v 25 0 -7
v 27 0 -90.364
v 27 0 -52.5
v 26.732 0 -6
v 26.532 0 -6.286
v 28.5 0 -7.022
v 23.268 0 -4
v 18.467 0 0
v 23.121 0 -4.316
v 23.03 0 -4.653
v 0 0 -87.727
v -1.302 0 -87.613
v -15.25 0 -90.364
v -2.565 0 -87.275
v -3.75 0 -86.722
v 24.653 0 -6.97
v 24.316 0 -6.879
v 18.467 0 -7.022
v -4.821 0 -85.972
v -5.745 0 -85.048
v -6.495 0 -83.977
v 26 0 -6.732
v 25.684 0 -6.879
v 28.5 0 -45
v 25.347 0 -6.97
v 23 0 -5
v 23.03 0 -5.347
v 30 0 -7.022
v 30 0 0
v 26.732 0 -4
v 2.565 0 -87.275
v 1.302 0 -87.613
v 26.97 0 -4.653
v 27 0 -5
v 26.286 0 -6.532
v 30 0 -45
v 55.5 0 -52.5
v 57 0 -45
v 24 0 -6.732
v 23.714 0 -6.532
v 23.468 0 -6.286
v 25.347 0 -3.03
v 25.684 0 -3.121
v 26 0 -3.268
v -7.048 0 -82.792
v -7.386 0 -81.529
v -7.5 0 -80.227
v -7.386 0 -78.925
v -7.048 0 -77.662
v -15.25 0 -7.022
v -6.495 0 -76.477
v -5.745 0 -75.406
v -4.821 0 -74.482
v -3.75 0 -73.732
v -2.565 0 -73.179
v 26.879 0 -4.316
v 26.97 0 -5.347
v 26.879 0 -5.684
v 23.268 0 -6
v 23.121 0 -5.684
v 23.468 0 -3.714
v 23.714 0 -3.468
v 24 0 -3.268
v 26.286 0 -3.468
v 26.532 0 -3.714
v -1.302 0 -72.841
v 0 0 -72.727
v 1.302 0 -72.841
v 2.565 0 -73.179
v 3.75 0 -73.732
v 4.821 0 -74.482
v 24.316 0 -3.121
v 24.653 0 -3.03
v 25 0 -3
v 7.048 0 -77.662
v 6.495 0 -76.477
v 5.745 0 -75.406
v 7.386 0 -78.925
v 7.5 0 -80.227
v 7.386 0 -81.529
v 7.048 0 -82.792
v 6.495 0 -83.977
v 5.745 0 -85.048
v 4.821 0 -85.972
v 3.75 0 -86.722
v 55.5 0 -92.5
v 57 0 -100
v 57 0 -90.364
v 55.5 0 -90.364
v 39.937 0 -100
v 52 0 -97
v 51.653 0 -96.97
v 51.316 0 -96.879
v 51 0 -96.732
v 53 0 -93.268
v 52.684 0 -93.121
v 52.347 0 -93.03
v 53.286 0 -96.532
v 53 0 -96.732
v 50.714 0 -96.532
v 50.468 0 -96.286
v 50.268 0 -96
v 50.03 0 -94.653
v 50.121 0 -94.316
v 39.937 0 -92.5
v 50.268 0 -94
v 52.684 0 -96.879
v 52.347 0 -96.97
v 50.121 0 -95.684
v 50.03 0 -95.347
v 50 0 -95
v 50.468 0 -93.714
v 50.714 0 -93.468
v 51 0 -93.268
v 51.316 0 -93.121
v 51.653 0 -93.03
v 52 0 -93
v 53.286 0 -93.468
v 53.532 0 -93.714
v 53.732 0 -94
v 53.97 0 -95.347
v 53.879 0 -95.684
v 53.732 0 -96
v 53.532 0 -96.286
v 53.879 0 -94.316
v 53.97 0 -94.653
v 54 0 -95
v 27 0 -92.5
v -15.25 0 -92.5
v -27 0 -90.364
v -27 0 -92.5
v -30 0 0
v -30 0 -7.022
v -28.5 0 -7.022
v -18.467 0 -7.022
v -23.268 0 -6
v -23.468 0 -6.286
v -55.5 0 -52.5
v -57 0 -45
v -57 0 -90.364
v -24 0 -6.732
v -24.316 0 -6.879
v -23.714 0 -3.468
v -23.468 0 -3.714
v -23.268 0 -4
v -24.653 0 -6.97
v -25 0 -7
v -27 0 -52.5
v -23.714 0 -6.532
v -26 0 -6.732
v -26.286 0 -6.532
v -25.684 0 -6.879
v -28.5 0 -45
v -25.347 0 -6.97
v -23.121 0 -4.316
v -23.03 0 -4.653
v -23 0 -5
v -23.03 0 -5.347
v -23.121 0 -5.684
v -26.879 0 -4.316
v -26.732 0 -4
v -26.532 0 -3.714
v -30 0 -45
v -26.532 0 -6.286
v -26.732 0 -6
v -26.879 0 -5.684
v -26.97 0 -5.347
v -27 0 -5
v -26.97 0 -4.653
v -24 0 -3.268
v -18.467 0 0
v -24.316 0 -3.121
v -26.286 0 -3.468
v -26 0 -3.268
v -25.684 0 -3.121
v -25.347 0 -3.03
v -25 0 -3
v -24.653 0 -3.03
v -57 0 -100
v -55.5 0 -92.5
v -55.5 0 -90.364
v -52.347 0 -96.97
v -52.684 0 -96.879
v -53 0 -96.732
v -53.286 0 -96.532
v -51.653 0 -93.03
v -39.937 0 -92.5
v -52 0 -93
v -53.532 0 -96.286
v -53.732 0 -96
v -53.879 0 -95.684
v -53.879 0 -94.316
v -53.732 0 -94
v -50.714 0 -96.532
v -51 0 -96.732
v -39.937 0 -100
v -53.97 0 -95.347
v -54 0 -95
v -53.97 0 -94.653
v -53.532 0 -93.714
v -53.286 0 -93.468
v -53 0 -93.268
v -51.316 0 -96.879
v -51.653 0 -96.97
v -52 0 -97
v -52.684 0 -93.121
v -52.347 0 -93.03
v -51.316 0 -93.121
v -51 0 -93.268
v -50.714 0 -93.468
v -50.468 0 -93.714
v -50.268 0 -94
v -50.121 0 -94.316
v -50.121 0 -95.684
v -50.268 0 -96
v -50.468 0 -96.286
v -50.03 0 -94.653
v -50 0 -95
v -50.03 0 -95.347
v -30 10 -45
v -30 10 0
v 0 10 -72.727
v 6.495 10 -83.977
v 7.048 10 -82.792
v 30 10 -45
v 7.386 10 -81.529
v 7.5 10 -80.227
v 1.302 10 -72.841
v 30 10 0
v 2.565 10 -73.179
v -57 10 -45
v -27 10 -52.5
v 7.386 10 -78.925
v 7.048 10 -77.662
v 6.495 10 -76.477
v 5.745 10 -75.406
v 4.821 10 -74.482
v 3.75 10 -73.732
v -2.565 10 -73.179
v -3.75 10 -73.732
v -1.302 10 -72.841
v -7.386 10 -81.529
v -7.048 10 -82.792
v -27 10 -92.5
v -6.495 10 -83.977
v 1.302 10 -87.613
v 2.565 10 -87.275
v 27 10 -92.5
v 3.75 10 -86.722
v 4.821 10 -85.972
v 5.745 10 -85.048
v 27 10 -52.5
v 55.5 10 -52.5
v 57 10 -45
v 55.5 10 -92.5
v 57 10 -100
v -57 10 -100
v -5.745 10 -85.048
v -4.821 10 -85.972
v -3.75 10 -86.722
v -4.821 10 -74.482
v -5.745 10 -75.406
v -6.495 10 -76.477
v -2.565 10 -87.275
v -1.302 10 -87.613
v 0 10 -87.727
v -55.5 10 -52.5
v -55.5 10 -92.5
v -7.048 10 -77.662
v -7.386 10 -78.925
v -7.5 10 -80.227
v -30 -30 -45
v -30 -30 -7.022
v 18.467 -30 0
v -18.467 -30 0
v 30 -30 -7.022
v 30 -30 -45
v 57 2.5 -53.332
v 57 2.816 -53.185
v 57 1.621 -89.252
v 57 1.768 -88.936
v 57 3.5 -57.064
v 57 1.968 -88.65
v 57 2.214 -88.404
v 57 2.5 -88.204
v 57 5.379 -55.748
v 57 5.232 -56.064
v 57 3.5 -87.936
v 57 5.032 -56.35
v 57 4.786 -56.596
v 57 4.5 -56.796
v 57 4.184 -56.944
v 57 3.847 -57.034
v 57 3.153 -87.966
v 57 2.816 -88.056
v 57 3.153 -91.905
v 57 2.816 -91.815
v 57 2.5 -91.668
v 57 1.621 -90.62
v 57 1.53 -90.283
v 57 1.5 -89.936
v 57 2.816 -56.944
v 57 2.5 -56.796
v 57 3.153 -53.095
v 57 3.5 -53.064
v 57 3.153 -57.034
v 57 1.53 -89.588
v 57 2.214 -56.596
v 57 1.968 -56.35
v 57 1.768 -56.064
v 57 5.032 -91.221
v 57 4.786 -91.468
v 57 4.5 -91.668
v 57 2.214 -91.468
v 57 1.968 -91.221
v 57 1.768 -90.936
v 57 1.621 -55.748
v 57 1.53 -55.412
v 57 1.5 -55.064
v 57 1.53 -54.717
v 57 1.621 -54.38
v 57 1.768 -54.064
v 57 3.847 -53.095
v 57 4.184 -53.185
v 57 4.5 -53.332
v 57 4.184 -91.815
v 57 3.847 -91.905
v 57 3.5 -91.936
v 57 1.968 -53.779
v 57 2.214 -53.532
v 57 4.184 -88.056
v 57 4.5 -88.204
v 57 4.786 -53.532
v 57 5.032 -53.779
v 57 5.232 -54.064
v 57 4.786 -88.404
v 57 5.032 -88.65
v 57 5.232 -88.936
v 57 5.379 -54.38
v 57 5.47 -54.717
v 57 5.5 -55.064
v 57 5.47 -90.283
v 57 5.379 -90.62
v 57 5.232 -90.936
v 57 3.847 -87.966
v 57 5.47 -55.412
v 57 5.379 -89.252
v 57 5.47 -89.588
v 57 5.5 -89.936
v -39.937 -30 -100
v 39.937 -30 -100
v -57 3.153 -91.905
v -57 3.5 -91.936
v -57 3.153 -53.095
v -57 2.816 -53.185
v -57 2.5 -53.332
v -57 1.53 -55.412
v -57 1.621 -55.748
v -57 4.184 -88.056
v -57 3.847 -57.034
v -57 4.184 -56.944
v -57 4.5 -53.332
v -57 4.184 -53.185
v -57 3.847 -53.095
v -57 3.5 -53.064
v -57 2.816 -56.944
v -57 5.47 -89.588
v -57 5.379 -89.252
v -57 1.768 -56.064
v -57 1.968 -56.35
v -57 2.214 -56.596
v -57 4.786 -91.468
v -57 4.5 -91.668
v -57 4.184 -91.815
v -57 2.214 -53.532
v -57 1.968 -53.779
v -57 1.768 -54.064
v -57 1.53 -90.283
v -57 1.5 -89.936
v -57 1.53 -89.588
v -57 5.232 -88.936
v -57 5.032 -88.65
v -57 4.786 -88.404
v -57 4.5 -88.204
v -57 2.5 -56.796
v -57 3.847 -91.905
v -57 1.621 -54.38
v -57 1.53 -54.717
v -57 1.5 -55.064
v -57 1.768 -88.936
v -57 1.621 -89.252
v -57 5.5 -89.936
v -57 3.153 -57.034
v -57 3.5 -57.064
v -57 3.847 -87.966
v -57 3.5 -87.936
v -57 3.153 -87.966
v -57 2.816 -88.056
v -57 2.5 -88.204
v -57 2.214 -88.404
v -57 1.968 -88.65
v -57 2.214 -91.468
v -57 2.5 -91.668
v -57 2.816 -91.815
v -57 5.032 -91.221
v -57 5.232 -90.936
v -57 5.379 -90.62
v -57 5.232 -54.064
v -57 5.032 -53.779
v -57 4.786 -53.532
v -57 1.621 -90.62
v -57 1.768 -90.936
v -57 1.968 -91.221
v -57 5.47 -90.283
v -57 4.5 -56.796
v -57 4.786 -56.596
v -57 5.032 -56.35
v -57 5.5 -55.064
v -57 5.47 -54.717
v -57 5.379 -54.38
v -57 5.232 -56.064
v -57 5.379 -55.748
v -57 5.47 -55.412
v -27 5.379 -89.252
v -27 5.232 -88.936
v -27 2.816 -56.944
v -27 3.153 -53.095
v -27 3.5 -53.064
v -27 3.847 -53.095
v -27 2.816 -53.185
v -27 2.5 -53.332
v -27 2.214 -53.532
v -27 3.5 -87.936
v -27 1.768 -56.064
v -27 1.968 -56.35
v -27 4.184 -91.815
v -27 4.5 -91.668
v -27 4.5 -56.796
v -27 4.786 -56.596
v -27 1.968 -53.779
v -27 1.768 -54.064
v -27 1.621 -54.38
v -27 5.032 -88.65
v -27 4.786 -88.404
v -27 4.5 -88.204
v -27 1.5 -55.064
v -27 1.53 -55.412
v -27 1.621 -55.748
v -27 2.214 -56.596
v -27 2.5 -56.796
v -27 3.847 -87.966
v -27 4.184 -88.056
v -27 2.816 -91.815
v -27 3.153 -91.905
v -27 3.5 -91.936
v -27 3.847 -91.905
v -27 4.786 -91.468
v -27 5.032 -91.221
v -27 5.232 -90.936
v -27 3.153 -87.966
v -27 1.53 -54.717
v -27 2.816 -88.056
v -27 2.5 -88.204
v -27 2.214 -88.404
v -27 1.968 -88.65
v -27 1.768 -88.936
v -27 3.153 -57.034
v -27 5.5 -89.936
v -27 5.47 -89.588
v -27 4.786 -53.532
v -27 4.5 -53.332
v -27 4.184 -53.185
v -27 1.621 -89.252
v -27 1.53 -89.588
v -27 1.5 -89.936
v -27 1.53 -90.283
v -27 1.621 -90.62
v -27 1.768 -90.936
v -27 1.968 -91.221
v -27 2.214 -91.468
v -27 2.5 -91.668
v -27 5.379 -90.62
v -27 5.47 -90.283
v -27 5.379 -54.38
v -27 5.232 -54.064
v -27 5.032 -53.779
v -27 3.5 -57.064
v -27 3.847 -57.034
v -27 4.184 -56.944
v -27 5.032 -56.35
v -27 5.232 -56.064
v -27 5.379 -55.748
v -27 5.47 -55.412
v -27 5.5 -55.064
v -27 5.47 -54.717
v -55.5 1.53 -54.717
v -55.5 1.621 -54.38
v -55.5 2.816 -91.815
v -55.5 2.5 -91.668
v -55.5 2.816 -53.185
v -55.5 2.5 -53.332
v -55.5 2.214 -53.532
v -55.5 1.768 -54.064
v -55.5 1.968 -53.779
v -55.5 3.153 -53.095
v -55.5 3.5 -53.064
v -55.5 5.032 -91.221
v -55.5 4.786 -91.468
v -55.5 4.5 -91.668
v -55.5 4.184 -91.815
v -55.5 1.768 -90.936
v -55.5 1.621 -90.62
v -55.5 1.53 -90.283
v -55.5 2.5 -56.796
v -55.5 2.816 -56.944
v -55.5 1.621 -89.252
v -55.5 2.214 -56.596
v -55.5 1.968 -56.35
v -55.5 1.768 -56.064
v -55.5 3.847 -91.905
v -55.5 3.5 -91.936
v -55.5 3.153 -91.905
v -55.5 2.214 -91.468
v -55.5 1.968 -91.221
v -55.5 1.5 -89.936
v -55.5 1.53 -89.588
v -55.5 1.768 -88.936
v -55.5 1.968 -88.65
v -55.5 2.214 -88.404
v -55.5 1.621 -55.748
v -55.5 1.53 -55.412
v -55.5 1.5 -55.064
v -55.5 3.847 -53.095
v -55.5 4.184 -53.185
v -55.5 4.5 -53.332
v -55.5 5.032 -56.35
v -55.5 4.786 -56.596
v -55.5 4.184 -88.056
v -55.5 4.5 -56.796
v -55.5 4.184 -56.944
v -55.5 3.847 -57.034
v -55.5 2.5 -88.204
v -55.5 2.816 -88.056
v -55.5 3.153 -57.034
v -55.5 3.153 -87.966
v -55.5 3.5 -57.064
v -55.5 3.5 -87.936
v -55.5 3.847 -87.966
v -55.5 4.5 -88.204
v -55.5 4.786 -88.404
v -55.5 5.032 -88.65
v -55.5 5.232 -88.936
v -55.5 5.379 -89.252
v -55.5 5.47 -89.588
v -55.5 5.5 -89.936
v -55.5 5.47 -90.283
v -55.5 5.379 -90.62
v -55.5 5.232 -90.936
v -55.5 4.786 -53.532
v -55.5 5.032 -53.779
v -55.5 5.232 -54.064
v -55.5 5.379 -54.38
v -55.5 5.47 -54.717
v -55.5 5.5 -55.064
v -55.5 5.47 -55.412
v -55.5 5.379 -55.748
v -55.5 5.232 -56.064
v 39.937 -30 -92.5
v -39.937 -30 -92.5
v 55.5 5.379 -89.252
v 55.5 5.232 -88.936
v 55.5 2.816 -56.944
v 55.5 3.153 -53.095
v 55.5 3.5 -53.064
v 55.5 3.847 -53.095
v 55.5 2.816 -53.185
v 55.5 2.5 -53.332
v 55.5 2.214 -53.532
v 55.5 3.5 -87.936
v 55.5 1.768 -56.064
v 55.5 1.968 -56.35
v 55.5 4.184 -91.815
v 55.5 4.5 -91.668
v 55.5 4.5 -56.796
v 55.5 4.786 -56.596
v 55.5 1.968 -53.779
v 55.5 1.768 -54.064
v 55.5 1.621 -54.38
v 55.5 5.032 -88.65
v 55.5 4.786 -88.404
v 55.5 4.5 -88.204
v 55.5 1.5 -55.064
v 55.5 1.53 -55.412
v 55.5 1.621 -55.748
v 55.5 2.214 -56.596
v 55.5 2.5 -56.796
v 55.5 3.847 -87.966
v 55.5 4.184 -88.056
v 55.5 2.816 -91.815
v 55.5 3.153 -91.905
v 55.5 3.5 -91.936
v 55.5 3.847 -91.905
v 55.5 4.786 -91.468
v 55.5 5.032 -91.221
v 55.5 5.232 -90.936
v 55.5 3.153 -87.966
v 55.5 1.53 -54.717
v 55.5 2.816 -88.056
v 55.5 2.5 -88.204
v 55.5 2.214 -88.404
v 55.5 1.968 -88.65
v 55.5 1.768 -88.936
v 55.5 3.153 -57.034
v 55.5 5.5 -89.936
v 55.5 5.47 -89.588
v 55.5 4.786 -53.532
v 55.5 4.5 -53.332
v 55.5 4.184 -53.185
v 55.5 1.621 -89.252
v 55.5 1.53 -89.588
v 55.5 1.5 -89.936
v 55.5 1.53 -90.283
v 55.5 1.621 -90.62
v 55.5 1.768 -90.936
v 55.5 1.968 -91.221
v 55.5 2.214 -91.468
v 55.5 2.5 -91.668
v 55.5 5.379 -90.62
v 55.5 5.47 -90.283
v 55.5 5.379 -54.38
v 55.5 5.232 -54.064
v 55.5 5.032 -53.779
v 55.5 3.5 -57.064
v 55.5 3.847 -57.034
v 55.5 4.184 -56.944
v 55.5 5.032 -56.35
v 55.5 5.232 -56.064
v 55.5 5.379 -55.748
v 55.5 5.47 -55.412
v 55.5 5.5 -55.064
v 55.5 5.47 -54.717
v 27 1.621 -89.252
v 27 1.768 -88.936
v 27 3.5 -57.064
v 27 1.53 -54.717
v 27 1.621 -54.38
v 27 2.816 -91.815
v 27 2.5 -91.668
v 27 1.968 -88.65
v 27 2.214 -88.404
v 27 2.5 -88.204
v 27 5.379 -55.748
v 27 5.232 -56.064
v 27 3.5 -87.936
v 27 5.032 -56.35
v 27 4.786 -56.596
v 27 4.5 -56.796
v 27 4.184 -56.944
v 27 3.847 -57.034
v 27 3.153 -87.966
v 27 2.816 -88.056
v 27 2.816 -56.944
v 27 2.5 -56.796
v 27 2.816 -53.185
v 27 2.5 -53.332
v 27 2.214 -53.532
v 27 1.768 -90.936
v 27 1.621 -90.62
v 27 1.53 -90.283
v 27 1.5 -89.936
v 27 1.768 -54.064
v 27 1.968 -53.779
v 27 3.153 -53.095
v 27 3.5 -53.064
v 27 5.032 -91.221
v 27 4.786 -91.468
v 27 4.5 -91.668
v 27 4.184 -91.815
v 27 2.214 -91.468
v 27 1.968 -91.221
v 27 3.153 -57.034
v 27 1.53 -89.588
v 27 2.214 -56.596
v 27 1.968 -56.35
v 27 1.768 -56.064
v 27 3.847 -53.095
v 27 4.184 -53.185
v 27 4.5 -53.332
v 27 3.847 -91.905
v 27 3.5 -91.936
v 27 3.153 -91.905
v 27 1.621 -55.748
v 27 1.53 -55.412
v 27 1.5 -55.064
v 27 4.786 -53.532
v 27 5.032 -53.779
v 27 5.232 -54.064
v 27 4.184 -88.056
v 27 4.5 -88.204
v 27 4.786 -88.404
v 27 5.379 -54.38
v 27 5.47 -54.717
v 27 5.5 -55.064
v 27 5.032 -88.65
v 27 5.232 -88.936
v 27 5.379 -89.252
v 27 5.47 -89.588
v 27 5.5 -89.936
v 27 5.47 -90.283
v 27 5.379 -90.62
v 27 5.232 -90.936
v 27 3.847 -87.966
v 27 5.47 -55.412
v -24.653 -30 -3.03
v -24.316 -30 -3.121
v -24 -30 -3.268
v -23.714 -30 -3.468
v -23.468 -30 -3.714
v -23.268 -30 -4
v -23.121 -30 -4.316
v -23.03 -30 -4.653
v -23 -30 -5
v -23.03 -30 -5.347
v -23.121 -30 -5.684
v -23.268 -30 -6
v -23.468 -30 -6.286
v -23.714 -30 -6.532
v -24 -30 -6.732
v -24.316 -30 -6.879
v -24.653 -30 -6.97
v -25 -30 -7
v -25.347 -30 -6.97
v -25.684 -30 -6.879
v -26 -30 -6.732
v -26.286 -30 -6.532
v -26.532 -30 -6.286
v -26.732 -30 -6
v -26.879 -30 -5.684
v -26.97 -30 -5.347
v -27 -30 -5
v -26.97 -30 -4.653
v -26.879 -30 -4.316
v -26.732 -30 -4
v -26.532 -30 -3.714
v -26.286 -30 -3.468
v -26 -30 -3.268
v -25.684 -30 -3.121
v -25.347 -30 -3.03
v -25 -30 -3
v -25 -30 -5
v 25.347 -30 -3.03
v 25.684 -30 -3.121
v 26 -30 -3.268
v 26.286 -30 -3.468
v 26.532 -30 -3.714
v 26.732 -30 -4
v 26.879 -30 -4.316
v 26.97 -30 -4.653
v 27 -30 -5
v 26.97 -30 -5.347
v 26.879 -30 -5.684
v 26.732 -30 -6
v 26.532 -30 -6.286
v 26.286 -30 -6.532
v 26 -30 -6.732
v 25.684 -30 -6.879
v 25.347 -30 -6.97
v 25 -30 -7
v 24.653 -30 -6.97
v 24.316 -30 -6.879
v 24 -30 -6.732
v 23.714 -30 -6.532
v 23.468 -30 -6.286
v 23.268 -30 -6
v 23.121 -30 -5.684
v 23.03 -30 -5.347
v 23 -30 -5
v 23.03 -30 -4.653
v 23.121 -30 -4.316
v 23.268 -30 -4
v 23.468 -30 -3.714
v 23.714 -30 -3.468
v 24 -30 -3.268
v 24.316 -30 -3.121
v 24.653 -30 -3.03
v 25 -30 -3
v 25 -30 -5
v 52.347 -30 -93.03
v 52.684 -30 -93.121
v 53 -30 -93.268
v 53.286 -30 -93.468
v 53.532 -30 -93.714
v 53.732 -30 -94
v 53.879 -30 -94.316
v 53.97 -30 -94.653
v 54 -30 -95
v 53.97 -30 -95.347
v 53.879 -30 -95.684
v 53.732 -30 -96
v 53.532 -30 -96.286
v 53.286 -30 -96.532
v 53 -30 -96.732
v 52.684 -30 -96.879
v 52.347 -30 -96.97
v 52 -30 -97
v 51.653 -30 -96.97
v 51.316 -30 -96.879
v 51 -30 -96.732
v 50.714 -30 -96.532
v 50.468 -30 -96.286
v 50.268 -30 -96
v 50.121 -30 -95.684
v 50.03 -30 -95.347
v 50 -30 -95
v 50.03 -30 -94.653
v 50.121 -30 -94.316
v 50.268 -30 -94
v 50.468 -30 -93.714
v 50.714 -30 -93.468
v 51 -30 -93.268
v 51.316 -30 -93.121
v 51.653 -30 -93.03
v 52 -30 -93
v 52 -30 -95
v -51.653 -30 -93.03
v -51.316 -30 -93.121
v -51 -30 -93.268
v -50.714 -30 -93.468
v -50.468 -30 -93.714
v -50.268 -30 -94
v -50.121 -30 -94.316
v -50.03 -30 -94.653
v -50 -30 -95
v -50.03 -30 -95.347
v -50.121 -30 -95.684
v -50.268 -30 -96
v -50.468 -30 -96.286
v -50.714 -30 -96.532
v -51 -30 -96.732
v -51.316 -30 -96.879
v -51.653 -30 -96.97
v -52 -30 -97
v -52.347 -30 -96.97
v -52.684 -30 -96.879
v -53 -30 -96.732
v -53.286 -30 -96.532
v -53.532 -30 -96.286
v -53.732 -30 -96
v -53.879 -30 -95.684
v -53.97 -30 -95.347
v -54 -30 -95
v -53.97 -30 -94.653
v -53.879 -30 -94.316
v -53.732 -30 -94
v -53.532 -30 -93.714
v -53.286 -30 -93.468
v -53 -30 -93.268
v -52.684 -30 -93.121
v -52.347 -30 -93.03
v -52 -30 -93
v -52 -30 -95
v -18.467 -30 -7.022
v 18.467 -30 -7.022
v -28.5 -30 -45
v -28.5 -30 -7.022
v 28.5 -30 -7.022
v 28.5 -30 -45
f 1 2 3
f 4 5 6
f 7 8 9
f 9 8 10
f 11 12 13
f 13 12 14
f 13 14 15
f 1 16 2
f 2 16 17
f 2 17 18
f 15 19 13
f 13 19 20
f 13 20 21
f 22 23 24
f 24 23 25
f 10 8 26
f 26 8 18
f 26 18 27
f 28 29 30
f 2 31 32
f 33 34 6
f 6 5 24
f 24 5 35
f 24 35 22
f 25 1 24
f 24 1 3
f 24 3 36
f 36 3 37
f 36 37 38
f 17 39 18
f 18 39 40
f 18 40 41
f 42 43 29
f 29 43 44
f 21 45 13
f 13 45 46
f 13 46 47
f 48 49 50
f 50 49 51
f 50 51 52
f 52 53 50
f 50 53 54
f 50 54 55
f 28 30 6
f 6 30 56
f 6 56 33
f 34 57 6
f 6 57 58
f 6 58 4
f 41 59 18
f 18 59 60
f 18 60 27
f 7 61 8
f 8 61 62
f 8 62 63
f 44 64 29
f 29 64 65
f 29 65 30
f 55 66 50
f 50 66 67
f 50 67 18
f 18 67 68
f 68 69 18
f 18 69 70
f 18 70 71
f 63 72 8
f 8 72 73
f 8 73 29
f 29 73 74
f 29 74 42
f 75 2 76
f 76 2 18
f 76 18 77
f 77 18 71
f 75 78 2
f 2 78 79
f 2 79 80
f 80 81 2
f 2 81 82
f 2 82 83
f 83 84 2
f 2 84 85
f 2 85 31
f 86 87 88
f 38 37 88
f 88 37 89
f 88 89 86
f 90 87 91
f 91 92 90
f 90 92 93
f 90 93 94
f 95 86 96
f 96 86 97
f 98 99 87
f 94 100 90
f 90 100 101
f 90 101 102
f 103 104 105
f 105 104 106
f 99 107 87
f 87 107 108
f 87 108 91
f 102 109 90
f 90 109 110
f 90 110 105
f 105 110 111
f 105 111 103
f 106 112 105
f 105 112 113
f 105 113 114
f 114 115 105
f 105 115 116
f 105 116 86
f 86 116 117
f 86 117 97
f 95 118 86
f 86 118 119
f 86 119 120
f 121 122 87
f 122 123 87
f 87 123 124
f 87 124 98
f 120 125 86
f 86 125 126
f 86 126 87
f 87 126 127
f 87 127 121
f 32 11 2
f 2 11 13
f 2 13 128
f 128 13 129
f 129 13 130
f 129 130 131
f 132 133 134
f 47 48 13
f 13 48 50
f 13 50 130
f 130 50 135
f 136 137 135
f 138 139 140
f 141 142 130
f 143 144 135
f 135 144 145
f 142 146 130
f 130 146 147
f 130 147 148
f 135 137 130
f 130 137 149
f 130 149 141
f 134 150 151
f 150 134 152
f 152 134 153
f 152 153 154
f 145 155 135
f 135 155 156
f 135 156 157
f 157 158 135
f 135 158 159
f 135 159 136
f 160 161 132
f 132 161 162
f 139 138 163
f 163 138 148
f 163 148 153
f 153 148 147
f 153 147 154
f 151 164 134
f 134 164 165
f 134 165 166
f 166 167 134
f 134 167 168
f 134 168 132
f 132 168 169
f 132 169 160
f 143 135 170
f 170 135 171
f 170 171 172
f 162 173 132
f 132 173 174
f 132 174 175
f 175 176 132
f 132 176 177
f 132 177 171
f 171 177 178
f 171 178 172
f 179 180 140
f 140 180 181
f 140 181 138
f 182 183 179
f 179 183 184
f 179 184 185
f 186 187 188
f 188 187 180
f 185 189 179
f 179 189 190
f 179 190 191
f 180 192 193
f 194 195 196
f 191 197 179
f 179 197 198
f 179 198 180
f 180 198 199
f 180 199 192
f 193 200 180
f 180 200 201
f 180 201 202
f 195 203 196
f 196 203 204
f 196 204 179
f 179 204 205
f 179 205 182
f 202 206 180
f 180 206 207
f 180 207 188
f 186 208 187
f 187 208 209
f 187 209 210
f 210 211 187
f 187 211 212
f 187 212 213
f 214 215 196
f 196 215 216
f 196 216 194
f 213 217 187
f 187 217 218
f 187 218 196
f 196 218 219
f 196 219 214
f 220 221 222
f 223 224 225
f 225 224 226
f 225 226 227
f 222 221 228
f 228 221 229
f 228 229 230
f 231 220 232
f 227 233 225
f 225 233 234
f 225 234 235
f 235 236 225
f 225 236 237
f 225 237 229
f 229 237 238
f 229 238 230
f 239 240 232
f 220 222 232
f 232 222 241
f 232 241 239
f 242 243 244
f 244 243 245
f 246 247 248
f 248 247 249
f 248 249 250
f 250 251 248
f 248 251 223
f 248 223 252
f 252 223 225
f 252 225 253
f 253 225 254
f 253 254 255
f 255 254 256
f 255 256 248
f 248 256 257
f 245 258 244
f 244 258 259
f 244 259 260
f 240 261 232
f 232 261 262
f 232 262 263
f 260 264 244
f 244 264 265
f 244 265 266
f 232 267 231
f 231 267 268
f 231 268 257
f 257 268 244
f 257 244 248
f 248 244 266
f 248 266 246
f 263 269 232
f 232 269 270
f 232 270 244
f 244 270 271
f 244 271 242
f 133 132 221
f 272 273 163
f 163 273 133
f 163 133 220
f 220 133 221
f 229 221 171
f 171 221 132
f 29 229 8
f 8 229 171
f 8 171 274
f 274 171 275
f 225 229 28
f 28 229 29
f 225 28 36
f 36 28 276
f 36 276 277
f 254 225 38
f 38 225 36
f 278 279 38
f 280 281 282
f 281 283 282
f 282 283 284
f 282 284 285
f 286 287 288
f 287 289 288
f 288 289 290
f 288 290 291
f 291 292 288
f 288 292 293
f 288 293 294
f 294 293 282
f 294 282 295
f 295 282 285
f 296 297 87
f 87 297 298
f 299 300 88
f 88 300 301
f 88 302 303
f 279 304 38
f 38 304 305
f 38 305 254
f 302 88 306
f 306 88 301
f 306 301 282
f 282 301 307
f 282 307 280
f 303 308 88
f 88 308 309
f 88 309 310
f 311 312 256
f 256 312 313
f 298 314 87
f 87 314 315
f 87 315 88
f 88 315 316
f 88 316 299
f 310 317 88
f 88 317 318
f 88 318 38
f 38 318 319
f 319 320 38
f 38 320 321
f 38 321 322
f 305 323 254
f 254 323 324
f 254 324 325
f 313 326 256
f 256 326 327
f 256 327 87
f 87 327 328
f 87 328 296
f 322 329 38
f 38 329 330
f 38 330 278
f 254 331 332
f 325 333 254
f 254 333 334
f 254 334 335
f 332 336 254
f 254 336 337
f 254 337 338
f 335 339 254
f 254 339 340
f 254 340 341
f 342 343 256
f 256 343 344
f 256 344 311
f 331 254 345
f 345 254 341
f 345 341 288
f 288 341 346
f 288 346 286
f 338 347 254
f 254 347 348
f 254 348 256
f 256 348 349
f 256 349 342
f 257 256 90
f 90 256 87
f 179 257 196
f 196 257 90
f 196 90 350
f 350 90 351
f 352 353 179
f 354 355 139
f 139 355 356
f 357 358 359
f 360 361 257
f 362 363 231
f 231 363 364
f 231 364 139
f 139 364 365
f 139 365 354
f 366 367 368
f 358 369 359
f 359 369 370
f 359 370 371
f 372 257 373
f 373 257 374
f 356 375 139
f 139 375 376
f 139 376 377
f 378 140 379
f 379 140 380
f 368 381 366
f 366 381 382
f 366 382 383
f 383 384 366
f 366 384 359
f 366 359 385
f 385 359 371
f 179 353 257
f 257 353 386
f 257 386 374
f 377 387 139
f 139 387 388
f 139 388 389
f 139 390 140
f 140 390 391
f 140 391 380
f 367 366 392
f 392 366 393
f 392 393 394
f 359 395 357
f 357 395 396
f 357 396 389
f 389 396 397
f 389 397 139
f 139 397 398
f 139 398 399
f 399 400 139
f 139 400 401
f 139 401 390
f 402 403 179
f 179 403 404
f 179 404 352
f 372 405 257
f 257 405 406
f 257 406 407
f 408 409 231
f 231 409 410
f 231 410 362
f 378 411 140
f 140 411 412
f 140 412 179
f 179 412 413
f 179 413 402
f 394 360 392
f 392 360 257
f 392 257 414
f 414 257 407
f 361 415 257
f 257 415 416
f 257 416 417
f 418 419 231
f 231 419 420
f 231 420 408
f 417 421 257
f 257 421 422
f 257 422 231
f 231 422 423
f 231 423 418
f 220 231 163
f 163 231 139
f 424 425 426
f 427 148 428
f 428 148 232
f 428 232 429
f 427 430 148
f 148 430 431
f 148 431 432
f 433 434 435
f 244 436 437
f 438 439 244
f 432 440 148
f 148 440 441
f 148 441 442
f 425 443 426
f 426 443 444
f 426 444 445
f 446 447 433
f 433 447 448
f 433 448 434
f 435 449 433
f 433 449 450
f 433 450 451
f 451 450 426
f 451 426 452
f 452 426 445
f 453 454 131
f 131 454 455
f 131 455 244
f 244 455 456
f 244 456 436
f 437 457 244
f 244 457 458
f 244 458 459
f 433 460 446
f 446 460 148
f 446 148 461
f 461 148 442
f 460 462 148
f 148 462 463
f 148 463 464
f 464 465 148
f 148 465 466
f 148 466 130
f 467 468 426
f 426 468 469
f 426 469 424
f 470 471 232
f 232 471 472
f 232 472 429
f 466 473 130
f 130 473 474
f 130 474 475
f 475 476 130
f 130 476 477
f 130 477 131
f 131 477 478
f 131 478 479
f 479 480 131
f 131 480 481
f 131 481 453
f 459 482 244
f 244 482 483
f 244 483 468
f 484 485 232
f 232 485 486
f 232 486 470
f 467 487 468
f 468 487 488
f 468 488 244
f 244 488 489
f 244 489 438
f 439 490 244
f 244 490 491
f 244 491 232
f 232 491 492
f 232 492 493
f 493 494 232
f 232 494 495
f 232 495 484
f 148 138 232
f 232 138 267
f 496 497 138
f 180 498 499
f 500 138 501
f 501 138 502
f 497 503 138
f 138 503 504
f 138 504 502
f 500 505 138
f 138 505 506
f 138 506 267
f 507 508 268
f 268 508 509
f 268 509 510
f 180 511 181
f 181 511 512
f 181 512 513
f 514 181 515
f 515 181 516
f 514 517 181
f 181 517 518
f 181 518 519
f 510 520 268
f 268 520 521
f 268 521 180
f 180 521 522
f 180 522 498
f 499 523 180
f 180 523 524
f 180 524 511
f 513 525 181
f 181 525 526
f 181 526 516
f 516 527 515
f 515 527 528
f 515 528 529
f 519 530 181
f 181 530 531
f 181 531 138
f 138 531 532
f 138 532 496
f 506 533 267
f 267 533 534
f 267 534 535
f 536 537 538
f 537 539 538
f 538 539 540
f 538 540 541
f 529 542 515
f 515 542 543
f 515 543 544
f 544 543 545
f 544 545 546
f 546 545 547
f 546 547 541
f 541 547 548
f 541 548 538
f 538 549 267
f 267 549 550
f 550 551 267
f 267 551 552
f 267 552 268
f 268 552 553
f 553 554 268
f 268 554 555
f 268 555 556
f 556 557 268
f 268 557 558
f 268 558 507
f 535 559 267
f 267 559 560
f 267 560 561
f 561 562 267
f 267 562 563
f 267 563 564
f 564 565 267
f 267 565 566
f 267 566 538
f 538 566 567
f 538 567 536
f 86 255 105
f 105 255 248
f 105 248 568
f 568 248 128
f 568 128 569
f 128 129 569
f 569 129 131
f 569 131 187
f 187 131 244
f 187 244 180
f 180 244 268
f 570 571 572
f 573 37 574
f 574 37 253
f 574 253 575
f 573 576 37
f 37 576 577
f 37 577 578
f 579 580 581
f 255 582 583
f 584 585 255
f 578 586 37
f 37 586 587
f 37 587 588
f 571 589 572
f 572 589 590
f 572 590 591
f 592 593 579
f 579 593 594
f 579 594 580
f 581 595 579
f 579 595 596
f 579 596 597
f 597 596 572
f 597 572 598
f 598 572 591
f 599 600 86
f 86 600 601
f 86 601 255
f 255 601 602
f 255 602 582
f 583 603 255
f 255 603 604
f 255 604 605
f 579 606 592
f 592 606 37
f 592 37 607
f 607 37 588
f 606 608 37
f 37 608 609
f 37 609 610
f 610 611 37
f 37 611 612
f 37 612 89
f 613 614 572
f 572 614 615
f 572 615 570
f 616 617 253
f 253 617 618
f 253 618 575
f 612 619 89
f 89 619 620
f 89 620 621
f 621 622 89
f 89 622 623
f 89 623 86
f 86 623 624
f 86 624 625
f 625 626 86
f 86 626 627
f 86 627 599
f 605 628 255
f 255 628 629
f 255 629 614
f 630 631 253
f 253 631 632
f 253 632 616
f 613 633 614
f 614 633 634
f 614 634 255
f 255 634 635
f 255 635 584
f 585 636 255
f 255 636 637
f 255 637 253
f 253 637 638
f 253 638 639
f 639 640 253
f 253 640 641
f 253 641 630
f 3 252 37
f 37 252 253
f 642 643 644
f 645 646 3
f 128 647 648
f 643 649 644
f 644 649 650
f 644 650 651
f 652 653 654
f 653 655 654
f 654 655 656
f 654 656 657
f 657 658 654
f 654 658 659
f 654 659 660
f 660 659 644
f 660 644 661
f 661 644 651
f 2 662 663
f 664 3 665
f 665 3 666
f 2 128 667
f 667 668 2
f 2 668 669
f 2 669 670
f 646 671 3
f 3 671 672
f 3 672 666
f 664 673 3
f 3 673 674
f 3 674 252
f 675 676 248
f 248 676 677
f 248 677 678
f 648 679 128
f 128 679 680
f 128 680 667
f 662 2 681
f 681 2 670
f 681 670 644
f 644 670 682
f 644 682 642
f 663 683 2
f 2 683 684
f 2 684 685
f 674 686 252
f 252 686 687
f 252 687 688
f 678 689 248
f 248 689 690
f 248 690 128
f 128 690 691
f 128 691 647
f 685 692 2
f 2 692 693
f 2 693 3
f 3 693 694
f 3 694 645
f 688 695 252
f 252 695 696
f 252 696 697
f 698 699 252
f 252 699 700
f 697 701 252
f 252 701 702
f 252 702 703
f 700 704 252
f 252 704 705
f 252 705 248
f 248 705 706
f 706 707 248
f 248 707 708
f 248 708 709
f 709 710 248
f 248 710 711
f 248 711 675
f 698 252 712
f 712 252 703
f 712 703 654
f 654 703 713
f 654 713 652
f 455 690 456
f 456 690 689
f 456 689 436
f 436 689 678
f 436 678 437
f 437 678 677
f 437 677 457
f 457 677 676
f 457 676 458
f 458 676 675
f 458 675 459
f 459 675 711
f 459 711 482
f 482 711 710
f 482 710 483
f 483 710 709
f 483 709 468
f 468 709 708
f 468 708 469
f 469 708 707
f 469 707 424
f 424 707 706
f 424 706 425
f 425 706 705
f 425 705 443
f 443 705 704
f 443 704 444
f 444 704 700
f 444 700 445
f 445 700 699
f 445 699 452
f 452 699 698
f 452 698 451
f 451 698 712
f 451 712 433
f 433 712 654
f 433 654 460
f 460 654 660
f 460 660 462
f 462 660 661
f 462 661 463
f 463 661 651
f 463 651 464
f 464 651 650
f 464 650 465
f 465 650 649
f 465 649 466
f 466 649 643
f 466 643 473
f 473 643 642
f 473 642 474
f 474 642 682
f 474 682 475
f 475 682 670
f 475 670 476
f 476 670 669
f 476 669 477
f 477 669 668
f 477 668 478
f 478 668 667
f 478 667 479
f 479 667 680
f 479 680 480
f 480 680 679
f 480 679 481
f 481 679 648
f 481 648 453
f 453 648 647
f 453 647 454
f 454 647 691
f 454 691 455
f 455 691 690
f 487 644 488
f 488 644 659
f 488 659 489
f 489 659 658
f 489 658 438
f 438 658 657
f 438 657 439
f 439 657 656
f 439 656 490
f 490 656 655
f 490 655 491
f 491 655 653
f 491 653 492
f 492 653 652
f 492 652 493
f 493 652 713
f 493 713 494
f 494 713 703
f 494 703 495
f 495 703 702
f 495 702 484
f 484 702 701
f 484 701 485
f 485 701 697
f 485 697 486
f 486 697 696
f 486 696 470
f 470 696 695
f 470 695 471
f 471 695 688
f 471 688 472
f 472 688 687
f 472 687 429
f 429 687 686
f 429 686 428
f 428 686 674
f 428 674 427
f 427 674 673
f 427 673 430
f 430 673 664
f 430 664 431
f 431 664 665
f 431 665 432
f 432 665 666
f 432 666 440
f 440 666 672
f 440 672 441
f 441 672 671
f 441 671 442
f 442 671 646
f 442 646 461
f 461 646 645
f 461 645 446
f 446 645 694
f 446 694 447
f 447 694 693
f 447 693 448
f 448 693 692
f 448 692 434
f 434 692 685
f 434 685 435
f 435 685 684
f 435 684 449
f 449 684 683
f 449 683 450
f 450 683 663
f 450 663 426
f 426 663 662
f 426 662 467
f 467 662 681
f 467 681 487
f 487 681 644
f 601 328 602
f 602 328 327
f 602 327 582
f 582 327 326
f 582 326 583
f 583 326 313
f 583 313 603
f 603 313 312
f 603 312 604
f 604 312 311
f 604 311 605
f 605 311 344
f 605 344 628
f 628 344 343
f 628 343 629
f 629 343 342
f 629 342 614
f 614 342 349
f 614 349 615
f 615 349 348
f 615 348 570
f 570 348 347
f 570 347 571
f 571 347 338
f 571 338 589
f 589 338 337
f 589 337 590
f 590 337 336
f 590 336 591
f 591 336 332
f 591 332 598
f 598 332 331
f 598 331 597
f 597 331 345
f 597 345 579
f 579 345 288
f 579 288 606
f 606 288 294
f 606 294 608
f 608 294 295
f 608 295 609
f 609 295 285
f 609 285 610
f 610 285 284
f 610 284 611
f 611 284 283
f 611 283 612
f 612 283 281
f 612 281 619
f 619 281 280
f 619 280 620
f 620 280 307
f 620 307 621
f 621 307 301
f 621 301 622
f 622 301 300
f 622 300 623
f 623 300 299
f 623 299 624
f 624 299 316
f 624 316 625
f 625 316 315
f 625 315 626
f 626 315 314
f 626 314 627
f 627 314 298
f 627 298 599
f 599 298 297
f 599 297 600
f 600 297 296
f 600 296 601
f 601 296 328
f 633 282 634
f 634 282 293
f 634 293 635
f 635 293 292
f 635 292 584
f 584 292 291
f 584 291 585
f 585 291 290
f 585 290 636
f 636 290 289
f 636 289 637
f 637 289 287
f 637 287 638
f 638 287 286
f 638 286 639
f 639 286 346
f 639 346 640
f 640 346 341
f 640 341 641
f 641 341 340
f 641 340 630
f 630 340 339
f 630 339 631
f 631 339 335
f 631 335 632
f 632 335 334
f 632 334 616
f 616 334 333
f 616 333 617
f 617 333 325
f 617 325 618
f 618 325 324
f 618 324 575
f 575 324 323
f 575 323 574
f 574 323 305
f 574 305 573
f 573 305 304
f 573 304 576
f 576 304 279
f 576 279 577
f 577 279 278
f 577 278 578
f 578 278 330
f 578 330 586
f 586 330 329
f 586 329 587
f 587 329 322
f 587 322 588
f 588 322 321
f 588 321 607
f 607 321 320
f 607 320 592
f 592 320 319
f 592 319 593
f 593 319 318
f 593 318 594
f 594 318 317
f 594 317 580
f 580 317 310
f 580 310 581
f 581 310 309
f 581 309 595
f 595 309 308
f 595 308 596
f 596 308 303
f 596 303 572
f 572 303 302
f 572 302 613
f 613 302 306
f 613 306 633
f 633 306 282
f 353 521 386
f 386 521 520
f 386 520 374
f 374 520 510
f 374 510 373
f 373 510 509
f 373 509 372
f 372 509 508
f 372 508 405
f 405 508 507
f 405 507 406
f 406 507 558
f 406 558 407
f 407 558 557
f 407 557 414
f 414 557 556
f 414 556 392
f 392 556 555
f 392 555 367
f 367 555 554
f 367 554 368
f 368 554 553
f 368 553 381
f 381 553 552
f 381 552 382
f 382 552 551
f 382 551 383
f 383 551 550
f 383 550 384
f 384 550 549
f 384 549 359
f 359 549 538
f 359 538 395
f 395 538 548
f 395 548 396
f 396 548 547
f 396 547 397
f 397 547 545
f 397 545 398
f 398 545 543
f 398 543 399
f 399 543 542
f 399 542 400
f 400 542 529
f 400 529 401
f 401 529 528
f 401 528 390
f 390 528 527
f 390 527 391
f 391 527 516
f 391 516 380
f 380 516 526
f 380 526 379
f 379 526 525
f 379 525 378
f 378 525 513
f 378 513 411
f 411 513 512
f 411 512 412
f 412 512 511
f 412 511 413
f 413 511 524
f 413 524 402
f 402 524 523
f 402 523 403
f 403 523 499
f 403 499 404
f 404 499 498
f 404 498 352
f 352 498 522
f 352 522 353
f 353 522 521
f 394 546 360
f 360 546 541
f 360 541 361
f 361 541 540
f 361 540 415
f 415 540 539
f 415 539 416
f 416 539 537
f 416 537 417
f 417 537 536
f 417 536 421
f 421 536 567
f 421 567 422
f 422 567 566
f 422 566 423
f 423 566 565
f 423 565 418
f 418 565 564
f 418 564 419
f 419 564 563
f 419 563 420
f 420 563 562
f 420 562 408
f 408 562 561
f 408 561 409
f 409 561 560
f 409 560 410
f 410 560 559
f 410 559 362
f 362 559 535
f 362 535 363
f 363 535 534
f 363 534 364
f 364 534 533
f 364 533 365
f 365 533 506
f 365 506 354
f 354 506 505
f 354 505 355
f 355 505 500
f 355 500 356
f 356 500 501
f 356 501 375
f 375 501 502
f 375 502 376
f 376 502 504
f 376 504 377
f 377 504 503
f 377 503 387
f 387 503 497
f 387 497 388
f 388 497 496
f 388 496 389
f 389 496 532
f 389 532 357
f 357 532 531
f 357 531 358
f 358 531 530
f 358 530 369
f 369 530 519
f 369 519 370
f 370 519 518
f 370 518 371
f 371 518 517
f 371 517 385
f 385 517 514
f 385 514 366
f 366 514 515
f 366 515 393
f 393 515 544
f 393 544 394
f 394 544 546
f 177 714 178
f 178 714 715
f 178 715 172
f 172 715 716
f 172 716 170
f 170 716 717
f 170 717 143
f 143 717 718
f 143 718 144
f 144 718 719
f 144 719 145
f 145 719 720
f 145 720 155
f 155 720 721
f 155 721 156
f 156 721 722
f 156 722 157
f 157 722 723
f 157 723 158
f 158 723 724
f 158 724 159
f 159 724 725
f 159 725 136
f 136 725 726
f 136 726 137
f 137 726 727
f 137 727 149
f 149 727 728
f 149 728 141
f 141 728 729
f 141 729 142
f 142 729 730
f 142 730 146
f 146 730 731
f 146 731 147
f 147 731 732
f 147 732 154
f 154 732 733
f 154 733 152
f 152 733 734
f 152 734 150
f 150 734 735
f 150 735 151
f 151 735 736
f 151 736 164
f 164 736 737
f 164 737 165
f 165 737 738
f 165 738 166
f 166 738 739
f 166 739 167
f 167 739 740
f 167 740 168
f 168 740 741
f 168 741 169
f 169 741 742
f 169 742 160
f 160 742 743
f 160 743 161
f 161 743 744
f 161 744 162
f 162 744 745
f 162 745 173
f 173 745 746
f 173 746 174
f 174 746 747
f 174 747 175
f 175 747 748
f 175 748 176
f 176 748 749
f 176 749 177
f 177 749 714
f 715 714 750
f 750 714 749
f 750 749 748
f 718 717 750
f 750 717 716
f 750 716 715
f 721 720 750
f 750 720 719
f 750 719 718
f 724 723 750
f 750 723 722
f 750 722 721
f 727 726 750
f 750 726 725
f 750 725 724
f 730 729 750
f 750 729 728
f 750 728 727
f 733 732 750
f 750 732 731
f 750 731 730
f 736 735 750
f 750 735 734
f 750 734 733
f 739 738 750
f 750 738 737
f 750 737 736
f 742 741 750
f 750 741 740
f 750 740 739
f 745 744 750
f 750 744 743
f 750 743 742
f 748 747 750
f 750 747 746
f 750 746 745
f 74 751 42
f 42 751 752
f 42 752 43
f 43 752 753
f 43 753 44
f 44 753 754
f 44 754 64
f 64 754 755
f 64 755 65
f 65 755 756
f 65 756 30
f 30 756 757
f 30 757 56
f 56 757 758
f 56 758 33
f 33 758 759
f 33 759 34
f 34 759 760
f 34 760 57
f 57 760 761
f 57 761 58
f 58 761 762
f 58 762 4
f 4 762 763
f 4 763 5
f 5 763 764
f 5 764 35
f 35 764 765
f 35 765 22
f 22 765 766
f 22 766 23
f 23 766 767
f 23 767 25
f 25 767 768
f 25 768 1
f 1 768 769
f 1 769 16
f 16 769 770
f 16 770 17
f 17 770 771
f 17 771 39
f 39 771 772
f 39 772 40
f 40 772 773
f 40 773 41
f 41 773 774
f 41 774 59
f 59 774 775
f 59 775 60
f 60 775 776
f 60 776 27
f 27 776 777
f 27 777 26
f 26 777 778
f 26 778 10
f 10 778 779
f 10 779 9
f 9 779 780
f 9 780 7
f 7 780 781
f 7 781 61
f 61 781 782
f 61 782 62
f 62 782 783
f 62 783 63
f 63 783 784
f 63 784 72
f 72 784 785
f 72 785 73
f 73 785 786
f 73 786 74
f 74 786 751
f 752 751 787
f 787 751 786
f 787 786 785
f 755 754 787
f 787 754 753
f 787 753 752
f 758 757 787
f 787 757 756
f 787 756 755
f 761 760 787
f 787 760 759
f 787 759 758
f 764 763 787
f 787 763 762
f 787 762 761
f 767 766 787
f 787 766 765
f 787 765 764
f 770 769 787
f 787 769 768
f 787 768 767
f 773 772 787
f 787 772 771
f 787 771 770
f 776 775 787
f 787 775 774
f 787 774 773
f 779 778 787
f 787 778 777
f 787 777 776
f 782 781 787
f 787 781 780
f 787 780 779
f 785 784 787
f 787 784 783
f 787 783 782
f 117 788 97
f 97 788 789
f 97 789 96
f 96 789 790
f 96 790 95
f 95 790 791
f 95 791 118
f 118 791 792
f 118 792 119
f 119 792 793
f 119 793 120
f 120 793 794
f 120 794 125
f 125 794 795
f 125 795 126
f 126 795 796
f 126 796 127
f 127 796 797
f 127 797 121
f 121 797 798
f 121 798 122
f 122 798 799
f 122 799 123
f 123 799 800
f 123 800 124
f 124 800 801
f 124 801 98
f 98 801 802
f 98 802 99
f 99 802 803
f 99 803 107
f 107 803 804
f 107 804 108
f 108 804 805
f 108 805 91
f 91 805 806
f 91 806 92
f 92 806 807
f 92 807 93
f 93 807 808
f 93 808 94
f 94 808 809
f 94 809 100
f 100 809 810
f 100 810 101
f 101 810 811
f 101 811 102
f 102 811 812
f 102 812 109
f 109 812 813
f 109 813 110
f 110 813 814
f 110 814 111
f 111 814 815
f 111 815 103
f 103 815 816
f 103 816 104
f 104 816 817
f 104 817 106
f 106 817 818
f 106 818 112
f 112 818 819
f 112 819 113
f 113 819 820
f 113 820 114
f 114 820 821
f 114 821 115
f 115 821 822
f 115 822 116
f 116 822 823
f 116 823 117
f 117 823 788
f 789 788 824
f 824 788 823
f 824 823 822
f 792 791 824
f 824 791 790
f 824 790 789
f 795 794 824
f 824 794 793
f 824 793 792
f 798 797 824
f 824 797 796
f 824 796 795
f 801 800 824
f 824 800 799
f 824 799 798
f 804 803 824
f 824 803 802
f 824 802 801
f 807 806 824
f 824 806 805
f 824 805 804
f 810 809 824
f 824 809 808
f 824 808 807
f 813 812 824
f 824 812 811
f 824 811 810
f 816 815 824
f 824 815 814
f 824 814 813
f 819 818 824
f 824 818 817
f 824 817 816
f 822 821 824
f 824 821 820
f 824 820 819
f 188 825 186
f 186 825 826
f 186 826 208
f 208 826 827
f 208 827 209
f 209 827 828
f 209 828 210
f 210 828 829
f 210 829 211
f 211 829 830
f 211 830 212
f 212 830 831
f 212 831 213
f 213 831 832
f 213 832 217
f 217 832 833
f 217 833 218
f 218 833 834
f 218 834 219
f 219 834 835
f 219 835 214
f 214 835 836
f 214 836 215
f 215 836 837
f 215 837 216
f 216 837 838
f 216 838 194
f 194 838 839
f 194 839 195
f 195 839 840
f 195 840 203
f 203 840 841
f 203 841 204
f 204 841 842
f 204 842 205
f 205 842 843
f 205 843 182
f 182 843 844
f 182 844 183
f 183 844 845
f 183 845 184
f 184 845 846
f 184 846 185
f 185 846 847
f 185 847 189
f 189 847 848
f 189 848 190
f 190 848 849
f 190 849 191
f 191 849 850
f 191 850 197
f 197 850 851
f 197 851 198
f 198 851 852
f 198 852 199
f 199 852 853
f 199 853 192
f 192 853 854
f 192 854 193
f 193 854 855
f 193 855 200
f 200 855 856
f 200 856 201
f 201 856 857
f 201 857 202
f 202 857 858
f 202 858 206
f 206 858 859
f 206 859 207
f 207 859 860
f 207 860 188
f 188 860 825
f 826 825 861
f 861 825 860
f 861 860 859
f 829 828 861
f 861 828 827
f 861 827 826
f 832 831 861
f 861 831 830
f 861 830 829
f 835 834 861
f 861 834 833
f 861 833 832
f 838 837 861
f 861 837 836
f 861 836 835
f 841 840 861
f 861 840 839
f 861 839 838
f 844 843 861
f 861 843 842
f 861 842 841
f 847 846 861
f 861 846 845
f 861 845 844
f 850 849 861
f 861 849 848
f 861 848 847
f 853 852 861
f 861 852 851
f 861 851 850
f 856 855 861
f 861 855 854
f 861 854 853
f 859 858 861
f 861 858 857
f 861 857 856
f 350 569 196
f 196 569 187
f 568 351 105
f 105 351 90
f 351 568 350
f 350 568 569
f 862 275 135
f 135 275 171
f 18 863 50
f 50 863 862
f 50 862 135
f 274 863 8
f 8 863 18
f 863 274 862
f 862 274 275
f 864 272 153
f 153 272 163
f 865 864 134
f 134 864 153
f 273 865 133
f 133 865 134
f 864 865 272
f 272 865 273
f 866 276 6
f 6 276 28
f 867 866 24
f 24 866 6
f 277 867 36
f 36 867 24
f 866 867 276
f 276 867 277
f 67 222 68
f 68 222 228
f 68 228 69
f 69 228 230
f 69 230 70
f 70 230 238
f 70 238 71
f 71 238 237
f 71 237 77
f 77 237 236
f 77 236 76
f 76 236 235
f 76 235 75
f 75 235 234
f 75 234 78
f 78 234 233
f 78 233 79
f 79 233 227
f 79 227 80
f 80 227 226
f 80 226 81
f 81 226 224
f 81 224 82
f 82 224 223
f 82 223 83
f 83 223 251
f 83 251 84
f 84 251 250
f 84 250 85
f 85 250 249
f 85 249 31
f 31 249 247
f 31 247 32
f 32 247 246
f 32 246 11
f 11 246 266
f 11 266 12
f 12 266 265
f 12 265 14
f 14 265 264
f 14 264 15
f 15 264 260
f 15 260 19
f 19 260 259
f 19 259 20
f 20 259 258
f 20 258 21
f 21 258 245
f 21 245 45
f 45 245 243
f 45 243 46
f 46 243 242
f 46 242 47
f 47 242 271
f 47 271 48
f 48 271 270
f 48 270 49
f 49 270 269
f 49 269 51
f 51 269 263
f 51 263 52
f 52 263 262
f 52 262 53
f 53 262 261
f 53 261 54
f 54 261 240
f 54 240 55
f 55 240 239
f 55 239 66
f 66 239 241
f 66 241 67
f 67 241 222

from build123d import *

# Parameters (mm, degrees)
BOSS_EXTRUDE1_DEPTH     = 10
CUT_EXTRUDE1_DEPTH      = 116.537872579
CUT_EXTRUDE1_DEPTH_BACK = 116.537872579
SKETCH2_R               = 2
SKETCH2_W               = 28.5
SKETCH2_H               = 40
SKETCH5_R               = 2
CUT_EXTRUDE2_DEPTH      = 152.973681932
SKETCH6_R               = 2
BOSS_EXTRUDE2_DEPTH     = 40
SKETCH7_W               = 79.874147132
SKETCH7_H               = 7.5
SKETCH7_W_2             = 36.93403835
SKETCH7_H_2             = 7.021862101
SKETCH7_W_3             = 1.5
SKETCH7_H_3             = 37.978137899
BOSS_EXTRUDE3_DEPTH     = 30
CUT_EXTRUDE3_DEPTH      = 122.856472951
CUT_EXTRUDE3_DEPTH_BACK = 122.856472951
SKETCH8_R               = 7.5


with BuildPart() as part:
    # Sketch1 → Boss-Extrude1 (new body)
    with BuildSketch(Plane(origin=(0, 0, 0), x_dir=(1, 0, 0), z_dir=(0, 1, 0))):
        Polygon((30, 0), (-30, 0), (-30, 45), (-57, 45), (-57, 100), (57, 100), (57, 45), (30, 45), align=None)
    extrude(amount=BOSS_EXTRUDE1_DEPTH)

    # Sketch2 → Cut-Extrude1 (cut, two sides: drawn at the far end of the back side and taken through both)
    with BuildSketch(Plane(origin=(0, 10, 0), x_dir=(1, 0, 0), z_dir=(0, 1, 0)).offset(-CUT_EXTRUDE1_DEPTH_BACK)):
        with Locations(Location((-52, 95, 0), (0, 0, 270))):
            Circle(SKETCH2_R)
        with Locations(Location((52, 95, 0), (0, 0, 270))):
            Circle(SKETCH2_R)
        with Locations(Location((-25, 5, 0), (0, 0, 270))):
            Circle(SKETCH2_R)
        with Locations(Location((25, 5, 0), (0, 0, 270))):
            Circle(SKETCH2_R)
        with Locations((-41.25, 72.5)):
            Rectangle(SKETCH2_W, SKETCH2_H)
        with Locations((41.25, 72.5)):
            Rectangle(SKETCH2_W, SKETCH2_H)
    extrude(amount=CUT_EXTRUDE1_DEPTH + CUT_EXTRUDE1_DEPTH_BACK, mode=Mode.SUBTRACT)

    # Sketch5 → Cut-Extrude2 (cut, through all)
    with BuildSketch(Plane(origin=(57, 0, 0), x_dir=(0, 0, -1), z_dir=(1, 0, 0))):
        with Locations(Location((55.064404226, 3.5, 0), (0, 0, 180))):
            Circle(SKETCH5_R)
        with Locations(Location((89.935595774, 3.5, 0), (0, 0, 180))):
            Circle(SKETCH5_R)
    extrude(amount=-CUT_EXTRUDE2_DEPTH, mode=Mode.SUBTRACT)

    # Sketch6 → Boss-Extrude2 (add)
    with BuildSketch(Plane(origin=(0, 10, 0), x_dir=(1, 0, 0), z_dir=(0, 1, 0))):
        with Locations(Location((-25, 5, 0), (0, 0, 270))):
            Circle(SKETCH6_R)
        with Locations(Location((25, 5, 0), (0, 0, 270))):
            Circle(SKETCH6_R)
        with Locations(Location((52, 95, 0), (0, 0, 270))):
            Circle(SKETCH6_R)
        with Locations(Location((-52, 95, 0), (0, 0, 270))):
            Circle(SKETCH6_R)
    extrude(amount=-BOSS_EXTRUDE2_DEPTH)

    # Sketch7 → Boss-Extrude3 (add)
    with BuildSketch(Plane.XZ):
        with Locations((0, -96.25)):
            Rectangle(SKETCH7_W, SKETCH7_H)
        with Locations((0, -3.510931051)):
            Rectangle(SKETCH7_W_2, SKETCH7_H_2)
        with Locations((-29.25, -26.010931051)):
            Rectangle(SKETCH7_W_3, SKETCH7_H_3)
        with Locations((29.25, -26.010931051)):
            Rectangle(SKETCH7_W_3, SKETCH7_H_3)
    extrude(amount=BOSS_EXTRUDE3_DEPTH)

    # Sketch8 → Cut-Extrude3 (cut, two sides: drawn at the far end of the back side and taken through both)
    with BuildSketch(Plane(origin=(0, 10, 0), x_dir=(1, 0, 0), z_dir=(0, 1, 0)).offset(-CUT_EXTRUDE3_DEPTH_BACK)):
        with Locations(Location((0, 80.227050859, 0), (0, 0, 270))):
            Circle(SKETCH8_R)
    extrude(amount=CUT_EXTRUDE3_DEPTH + CUT_EXTRUDE3_DEPTH_BACK, mode=Mode.SUBTRACT)


solid = part.part
